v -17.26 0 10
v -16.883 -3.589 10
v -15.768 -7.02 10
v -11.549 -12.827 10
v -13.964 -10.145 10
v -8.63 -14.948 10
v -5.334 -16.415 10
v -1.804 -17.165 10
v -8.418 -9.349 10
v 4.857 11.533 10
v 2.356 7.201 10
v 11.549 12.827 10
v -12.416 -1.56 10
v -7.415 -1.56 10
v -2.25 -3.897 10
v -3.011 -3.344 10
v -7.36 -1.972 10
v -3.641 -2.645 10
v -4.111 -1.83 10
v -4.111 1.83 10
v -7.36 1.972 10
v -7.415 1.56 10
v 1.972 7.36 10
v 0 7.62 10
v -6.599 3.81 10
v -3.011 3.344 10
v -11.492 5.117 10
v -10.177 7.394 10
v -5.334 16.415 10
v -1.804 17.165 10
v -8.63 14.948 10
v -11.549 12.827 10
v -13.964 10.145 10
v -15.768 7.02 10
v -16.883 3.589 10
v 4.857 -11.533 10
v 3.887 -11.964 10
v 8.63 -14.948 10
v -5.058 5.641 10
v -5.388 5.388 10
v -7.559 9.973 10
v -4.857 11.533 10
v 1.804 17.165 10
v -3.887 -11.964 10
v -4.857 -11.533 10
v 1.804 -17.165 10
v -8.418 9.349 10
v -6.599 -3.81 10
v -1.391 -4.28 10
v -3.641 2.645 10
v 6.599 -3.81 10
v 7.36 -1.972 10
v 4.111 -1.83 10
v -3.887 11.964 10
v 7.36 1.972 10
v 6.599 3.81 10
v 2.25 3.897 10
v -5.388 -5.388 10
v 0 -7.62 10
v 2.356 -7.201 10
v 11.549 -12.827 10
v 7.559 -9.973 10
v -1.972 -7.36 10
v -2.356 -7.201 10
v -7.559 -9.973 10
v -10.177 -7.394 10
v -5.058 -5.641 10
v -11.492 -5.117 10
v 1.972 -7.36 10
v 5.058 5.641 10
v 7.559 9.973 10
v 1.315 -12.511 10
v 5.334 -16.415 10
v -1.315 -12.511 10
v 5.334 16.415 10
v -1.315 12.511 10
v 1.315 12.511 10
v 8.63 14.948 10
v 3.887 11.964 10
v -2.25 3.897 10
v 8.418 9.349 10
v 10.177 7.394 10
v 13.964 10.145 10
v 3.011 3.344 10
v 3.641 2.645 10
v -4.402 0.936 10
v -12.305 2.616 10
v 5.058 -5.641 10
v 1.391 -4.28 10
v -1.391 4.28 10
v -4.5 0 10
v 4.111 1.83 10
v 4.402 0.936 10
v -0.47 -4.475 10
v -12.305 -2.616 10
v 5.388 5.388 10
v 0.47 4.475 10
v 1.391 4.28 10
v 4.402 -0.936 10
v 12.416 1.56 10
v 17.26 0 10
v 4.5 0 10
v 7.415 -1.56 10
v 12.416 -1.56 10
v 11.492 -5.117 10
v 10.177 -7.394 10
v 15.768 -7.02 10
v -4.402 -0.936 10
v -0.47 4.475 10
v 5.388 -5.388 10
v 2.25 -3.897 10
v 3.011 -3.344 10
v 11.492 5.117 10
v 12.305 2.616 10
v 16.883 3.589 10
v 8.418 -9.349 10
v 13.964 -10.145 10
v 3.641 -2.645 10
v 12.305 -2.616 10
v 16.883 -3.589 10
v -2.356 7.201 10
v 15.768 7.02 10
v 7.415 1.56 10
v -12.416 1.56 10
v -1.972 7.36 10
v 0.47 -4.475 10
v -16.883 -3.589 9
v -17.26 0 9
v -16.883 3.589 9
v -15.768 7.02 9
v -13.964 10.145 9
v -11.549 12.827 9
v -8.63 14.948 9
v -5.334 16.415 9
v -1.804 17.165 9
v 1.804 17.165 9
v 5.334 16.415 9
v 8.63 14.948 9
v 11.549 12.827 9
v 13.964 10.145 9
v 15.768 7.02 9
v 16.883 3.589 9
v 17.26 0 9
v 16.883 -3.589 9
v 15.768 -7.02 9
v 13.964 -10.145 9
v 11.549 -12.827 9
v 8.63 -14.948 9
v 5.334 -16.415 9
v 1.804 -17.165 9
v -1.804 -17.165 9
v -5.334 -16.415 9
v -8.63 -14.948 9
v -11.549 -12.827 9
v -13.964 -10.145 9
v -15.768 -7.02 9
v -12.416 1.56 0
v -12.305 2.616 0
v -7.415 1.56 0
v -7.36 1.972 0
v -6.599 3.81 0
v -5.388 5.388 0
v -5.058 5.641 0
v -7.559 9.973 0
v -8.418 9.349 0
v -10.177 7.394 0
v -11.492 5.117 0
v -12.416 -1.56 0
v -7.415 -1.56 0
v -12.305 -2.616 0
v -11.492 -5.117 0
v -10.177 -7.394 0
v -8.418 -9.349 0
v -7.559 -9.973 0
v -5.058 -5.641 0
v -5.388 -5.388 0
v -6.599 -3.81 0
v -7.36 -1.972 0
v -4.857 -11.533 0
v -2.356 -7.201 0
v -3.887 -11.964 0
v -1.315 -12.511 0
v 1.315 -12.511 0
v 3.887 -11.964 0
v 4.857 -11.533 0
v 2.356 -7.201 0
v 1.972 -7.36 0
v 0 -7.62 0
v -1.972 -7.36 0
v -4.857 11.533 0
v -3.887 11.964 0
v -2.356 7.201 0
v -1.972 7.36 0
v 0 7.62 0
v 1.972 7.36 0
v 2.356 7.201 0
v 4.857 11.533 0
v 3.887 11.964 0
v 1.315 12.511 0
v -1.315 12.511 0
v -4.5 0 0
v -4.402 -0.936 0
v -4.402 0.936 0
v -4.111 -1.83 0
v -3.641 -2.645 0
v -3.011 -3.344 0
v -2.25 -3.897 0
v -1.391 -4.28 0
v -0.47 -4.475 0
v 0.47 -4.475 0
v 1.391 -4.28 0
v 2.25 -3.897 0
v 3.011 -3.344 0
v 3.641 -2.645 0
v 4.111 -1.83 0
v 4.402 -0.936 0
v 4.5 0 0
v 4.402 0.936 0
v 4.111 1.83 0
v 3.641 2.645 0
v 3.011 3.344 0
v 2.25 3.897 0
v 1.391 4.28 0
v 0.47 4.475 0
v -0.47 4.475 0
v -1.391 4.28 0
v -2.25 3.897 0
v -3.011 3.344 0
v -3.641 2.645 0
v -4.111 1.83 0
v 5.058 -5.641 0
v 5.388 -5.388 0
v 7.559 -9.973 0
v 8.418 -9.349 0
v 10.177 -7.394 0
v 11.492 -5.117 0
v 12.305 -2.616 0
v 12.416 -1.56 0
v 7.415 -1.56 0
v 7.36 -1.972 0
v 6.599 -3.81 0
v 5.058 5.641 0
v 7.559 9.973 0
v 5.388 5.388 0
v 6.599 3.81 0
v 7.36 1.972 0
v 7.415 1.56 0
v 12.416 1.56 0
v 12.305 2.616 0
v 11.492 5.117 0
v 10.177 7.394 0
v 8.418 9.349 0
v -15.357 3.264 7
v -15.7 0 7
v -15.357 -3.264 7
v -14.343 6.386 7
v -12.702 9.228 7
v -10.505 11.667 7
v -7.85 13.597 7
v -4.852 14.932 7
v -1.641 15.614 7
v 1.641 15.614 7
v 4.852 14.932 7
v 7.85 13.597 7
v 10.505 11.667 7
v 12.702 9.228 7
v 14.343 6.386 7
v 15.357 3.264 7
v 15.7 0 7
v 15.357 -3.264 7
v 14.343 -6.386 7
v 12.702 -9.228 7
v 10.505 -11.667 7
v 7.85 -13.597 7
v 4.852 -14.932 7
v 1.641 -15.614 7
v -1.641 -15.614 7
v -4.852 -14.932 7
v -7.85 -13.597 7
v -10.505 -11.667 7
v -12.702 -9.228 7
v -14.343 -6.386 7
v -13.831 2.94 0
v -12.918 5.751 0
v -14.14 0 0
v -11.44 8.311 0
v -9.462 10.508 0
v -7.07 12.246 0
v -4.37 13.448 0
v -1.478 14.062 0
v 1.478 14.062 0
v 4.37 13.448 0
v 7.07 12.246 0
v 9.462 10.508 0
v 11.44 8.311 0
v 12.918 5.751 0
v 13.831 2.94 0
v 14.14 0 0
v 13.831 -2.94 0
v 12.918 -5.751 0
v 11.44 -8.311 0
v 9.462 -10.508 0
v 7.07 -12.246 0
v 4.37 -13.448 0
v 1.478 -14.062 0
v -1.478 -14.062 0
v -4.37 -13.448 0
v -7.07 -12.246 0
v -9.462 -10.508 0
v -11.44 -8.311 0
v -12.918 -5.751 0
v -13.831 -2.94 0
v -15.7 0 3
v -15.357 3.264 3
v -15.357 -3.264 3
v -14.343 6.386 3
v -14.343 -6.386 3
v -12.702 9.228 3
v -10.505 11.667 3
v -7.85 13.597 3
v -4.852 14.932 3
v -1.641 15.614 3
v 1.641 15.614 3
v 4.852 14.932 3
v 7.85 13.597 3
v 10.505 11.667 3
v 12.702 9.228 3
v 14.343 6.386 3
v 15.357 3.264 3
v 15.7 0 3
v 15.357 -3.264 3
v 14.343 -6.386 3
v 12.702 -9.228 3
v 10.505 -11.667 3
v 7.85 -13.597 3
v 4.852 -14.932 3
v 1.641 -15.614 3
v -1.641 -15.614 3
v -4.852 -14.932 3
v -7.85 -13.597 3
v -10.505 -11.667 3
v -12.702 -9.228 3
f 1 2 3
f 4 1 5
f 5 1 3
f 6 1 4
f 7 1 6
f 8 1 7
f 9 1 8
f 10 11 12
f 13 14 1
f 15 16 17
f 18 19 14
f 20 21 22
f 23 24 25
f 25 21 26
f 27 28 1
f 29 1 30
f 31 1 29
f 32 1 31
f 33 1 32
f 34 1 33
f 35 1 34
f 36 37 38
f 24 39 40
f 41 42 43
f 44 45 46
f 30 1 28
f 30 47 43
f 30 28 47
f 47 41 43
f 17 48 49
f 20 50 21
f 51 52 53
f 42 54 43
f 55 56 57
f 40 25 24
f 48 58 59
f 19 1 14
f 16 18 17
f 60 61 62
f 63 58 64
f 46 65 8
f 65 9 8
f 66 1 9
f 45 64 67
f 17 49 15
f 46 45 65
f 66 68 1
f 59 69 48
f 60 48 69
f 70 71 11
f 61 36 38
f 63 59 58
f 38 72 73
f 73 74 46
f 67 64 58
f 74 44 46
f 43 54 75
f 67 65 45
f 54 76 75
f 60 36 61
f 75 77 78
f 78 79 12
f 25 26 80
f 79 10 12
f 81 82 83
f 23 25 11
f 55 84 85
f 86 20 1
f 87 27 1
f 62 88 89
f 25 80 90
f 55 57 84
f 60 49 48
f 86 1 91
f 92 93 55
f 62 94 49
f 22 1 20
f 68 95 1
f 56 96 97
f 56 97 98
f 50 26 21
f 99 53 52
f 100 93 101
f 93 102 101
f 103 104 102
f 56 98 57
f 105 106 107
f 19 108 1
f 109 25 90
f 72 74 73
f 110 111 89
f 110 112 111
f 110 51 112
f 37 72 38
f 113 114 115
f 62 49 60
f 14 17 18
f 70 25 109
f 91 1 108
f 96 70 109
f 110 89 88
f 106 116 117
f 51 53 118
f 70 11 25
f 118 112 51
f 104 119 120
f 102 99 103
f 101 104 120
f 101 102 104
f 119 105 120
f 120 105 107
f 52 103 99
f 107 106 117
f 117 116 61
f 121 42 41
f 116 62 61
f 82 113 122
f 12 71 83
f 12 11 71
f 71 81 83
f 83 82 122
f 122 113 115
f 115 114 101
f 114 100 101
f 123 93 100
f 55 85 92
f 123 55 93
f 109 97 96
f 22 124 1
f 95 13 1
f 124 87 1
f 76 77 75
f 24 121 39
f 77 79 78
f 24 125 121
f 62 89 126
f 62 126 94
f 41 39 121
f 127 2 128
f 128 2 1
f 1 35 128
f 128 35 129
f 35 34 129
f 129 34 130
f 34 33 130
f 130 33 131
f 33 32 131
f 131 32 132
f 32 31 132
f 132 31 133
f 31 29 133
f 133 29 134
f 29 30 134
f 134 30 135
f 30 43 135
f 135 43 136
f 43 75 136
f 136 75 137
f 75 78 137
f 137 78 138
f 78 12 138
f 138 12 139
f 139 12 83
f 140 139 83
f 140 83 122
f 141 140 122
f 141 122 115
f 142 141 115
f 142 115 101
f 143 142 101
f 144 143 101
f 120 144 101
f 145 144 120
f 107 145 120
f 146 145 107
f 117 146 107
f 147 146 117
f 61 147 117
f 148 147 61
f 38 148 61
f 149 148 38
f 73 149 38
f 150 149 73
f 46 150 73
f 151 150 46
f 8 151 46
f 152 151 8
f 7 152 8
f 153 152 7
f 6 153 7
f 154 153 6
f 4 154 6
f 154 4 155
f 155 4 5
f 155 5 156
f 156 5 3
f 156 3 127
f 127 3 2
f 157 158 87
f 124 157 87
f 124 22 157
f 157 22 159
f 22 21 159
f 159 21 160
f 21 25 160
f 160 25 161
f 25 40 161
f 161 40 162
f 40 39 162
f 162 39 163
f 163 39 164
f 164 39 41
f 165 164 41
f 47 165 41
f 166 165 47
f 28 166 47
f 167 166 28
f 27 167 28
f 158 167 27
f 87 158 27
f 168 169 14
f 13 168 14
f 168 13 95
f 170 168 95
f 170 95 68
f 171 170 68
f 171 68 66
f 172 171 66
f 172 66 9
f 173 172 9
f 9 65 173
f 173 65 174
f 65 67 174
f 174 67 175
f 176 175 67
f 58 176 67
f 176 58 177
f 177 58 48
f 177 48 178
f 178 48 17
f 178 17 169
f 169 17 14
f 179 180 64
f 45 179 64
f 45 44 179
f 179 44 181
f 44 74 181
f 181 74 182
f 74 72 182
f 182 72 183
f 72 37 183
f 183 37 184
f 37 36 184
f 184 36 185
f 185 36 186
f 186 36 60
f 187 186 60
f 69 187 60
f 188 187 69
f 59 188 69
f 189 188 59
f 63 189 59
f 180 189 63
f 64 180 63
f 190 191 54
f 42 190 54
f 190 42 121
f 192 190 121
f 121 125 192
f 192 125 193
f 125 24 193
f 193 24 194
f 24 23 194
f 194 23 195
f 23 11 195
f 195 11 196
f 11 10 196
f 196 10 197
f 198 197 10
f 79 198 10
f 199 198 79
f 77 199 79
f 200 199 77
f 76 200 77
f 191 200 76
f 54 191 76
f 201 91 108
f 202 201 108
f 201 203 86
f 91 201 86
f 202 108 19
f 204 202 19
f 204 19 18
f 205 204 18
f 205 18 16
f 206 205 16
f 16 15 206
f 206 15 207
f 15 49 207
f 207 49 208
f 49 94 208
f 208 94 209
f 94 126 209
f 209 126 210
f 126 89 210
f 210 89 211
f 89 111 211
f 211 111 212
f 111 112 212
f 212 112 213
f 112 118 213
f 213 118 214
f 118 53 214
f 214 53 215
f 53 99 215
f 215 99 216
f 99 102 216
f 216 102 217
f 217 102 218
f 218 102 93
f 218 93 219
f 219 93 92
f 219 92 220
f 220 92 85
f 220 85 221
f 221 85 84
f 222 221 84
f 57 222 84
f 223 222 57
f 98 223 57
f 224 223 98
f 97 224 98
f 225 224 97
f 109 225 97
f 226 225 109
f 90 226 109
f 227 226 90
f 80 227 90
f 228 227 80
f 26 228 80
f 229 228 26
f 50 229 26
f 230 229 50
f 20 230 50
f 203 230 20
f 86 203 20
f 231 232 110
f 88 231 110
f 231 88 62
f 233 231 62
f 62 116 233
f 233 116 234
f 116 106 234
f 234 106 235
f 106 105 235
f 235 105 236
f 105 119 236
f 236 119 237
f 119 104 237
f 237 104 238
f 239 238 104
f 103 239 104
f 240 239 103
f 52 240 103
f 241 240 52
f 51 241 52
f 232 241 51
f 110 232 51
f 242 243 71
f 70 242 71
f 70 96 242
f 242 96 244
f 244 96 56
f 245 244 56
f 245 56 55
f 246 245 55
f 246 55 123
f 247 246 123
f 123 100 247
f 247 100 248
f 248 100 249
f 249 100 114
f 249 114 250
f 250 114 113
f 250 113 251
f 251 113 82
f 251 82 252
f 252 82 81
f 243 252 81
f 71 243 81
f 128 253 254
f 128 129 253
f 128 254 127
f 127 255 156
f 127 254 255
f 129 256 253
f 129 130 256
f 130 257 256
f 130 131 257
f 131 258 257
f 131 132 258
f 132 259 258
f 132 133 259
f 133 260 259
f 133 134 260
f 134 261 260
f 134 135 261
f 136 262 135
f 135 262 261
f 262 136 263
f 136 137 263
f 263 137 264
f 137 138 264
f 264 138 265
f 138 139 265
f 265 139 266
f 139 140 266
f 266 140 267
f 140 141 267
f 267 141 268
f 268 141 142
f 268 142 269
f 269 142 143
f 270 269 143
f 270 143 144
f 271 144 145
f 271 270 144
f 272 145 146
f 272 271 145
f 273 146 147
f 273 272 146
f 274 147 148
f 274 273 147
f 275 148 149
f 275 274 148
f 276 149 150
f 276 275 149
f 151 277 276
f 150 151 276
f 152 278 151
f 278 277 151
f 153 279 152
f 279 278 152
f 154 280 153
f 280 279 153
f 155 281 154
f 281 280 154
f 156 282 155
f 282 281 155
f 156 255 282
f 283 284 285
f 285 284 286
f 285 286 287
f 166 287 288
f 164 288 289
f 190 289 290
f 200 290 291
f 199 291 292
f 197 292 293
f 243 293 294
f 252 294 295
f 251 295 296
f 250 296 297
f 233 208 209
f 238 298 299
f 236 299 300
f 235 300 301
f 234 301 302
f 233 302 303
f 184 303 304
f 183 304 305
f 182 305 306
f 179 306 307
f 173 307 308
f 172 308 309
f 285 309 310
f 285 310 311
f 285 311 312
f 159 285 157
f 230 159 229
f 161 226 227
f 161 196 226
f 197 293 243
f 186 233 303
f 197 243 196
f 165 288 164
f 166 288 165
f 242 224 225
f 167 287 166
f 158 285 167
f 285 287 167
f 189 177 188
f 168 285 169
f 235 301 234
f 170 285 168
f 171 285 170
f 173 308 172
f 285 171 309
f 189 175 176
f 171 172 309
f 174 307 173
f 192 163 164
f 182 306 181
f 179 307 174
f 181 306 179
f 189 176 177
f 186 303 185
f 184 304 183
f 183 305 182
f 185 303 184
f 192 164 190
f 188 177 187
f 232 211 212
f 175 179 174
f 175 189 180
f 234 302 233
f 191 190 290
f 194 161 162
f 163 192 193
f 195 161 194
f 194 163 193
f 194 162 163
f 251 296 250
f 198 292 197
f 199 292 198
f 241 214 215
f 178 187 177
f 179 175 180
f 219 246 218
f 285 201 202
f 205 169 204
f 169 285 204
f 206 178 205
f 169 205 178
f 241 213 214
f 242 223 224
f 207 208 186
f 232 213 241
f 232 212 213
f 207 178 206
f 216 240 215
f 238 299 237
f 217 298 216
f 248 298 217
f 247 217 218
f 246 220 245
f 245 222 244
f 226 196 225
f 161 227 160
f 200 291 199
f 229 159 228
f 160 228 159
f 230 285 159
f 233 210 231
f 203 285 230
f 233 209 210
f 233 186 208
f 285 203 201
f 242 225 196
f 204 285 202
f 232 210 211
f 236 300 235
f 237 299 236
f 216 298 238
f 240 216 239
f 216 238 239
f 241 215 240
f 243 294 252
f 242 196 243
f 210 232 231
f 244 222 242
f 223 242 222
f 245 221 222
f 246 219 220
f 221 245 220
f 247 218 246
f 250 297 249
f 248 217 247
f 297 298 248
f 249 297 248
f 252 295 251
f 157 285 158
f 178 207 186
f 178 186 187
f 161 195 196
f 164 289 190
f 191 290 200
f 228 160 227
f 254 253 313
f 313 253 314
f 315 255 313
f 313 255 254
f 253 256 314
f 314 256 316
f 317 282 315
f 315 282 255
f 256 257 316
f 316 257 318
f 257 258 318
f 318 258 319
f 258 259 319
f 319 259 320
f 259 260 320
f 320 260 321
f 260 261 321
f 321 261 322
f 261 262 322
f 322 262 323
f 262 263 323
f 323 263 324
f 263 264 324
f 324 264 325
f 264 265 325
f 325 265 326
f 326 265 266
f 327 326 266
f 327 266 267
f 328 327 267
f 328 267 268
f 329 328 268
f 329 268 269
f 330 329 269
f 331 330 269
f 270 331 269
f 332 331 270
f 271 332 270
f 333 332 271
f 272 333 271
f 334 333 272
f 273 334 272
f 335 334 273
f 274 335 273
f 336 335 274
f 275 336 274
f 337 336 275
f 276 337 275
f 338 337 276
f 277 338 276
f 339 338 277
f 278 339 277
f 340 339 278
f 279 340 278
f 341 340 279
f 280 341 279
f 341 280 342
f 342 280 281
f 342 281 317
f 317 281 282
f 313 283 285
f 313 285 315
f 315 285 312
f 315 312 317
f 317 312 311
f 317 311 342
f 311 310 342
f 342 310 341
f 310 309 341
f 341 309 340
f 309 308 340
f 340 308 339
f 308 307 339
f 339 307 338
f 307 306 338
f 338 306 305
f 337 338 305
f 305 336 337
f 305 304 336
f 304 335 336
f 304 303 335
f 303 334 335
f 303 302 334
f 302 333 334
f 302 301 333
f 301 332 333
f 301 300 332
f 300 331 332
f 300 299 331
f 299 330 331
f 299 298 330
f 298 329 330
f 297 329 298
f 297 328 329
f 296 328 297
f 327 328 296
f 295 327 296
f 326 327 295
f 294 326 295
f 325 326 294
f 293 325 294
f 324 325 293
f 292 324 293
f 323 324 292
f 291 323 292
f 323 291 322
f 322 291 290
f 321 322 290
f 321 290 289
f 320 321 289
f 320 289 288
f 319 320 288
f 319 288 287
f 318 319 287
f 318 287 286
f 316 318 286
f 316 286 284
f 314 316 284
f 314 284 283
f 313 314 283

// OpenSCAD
// PLASTIBOT MENDEL
// Spool Bushing
// Added settings for 1Kg Ultimachine spool.
// Plastibot <support@plastibot.com>
// Derived from: 

// Parametric Bushing
// by Generic
// http://www.thingiverse.com/thing:8697




module bushing(height, radius, hole_r, border,recess,num_support) {
	translate([0,0,height])
	mirror([0,0,1])
	difference() {
		union() {
			// Outer rings
			difference() {
				union() {
					cylinder(r=radius+border,h=1);
					translate([0,0,1]) {
						cylinder(h=2,r1=radius+border,r2=radius);
					}
					translate([0,0,3]) {
						cylinder(r=radius,h=height-6);
					}
					translate([0,0,height-3]) {
						cylinder(h=3,r1=radius,r2=radius-border);
					}
				}
				translate([0,0,-1]) {
					cylinder(r=radius-(border*2),h=height+border);
				}
			}
			// shafts
			for ( i=[0:num_support-1]) {
				rotate(a=[0,0,i*180/num_support]) {
					translate([-radius+border+0.4,-border,0]) {
						cube(size=[(radius-border)*2-0.6,border*2,height]);
					}
				}
			}
			// Central ring
			cylinder(r=hole_r+border*2,h=height);
		}
		translate([0,0,-1]) {
			// Central hole
			cylinder(r=hole_r,h=height+2,$fs=0.1);
			// Recess
			cylinder(r=radius-2*border, h=recess);
		}
	}
}


// Bushing BfB
//bushing(16, 75/2, 4.5, 1.56,5,3);

// Bushing orbitech
//bushing(16, 26.2, 4.5, 1.56,0,3);

// Bushing 51mm (ultimachine 1Kg)
bushing(10, 15.7, 4.5, 1.56,0,3);
